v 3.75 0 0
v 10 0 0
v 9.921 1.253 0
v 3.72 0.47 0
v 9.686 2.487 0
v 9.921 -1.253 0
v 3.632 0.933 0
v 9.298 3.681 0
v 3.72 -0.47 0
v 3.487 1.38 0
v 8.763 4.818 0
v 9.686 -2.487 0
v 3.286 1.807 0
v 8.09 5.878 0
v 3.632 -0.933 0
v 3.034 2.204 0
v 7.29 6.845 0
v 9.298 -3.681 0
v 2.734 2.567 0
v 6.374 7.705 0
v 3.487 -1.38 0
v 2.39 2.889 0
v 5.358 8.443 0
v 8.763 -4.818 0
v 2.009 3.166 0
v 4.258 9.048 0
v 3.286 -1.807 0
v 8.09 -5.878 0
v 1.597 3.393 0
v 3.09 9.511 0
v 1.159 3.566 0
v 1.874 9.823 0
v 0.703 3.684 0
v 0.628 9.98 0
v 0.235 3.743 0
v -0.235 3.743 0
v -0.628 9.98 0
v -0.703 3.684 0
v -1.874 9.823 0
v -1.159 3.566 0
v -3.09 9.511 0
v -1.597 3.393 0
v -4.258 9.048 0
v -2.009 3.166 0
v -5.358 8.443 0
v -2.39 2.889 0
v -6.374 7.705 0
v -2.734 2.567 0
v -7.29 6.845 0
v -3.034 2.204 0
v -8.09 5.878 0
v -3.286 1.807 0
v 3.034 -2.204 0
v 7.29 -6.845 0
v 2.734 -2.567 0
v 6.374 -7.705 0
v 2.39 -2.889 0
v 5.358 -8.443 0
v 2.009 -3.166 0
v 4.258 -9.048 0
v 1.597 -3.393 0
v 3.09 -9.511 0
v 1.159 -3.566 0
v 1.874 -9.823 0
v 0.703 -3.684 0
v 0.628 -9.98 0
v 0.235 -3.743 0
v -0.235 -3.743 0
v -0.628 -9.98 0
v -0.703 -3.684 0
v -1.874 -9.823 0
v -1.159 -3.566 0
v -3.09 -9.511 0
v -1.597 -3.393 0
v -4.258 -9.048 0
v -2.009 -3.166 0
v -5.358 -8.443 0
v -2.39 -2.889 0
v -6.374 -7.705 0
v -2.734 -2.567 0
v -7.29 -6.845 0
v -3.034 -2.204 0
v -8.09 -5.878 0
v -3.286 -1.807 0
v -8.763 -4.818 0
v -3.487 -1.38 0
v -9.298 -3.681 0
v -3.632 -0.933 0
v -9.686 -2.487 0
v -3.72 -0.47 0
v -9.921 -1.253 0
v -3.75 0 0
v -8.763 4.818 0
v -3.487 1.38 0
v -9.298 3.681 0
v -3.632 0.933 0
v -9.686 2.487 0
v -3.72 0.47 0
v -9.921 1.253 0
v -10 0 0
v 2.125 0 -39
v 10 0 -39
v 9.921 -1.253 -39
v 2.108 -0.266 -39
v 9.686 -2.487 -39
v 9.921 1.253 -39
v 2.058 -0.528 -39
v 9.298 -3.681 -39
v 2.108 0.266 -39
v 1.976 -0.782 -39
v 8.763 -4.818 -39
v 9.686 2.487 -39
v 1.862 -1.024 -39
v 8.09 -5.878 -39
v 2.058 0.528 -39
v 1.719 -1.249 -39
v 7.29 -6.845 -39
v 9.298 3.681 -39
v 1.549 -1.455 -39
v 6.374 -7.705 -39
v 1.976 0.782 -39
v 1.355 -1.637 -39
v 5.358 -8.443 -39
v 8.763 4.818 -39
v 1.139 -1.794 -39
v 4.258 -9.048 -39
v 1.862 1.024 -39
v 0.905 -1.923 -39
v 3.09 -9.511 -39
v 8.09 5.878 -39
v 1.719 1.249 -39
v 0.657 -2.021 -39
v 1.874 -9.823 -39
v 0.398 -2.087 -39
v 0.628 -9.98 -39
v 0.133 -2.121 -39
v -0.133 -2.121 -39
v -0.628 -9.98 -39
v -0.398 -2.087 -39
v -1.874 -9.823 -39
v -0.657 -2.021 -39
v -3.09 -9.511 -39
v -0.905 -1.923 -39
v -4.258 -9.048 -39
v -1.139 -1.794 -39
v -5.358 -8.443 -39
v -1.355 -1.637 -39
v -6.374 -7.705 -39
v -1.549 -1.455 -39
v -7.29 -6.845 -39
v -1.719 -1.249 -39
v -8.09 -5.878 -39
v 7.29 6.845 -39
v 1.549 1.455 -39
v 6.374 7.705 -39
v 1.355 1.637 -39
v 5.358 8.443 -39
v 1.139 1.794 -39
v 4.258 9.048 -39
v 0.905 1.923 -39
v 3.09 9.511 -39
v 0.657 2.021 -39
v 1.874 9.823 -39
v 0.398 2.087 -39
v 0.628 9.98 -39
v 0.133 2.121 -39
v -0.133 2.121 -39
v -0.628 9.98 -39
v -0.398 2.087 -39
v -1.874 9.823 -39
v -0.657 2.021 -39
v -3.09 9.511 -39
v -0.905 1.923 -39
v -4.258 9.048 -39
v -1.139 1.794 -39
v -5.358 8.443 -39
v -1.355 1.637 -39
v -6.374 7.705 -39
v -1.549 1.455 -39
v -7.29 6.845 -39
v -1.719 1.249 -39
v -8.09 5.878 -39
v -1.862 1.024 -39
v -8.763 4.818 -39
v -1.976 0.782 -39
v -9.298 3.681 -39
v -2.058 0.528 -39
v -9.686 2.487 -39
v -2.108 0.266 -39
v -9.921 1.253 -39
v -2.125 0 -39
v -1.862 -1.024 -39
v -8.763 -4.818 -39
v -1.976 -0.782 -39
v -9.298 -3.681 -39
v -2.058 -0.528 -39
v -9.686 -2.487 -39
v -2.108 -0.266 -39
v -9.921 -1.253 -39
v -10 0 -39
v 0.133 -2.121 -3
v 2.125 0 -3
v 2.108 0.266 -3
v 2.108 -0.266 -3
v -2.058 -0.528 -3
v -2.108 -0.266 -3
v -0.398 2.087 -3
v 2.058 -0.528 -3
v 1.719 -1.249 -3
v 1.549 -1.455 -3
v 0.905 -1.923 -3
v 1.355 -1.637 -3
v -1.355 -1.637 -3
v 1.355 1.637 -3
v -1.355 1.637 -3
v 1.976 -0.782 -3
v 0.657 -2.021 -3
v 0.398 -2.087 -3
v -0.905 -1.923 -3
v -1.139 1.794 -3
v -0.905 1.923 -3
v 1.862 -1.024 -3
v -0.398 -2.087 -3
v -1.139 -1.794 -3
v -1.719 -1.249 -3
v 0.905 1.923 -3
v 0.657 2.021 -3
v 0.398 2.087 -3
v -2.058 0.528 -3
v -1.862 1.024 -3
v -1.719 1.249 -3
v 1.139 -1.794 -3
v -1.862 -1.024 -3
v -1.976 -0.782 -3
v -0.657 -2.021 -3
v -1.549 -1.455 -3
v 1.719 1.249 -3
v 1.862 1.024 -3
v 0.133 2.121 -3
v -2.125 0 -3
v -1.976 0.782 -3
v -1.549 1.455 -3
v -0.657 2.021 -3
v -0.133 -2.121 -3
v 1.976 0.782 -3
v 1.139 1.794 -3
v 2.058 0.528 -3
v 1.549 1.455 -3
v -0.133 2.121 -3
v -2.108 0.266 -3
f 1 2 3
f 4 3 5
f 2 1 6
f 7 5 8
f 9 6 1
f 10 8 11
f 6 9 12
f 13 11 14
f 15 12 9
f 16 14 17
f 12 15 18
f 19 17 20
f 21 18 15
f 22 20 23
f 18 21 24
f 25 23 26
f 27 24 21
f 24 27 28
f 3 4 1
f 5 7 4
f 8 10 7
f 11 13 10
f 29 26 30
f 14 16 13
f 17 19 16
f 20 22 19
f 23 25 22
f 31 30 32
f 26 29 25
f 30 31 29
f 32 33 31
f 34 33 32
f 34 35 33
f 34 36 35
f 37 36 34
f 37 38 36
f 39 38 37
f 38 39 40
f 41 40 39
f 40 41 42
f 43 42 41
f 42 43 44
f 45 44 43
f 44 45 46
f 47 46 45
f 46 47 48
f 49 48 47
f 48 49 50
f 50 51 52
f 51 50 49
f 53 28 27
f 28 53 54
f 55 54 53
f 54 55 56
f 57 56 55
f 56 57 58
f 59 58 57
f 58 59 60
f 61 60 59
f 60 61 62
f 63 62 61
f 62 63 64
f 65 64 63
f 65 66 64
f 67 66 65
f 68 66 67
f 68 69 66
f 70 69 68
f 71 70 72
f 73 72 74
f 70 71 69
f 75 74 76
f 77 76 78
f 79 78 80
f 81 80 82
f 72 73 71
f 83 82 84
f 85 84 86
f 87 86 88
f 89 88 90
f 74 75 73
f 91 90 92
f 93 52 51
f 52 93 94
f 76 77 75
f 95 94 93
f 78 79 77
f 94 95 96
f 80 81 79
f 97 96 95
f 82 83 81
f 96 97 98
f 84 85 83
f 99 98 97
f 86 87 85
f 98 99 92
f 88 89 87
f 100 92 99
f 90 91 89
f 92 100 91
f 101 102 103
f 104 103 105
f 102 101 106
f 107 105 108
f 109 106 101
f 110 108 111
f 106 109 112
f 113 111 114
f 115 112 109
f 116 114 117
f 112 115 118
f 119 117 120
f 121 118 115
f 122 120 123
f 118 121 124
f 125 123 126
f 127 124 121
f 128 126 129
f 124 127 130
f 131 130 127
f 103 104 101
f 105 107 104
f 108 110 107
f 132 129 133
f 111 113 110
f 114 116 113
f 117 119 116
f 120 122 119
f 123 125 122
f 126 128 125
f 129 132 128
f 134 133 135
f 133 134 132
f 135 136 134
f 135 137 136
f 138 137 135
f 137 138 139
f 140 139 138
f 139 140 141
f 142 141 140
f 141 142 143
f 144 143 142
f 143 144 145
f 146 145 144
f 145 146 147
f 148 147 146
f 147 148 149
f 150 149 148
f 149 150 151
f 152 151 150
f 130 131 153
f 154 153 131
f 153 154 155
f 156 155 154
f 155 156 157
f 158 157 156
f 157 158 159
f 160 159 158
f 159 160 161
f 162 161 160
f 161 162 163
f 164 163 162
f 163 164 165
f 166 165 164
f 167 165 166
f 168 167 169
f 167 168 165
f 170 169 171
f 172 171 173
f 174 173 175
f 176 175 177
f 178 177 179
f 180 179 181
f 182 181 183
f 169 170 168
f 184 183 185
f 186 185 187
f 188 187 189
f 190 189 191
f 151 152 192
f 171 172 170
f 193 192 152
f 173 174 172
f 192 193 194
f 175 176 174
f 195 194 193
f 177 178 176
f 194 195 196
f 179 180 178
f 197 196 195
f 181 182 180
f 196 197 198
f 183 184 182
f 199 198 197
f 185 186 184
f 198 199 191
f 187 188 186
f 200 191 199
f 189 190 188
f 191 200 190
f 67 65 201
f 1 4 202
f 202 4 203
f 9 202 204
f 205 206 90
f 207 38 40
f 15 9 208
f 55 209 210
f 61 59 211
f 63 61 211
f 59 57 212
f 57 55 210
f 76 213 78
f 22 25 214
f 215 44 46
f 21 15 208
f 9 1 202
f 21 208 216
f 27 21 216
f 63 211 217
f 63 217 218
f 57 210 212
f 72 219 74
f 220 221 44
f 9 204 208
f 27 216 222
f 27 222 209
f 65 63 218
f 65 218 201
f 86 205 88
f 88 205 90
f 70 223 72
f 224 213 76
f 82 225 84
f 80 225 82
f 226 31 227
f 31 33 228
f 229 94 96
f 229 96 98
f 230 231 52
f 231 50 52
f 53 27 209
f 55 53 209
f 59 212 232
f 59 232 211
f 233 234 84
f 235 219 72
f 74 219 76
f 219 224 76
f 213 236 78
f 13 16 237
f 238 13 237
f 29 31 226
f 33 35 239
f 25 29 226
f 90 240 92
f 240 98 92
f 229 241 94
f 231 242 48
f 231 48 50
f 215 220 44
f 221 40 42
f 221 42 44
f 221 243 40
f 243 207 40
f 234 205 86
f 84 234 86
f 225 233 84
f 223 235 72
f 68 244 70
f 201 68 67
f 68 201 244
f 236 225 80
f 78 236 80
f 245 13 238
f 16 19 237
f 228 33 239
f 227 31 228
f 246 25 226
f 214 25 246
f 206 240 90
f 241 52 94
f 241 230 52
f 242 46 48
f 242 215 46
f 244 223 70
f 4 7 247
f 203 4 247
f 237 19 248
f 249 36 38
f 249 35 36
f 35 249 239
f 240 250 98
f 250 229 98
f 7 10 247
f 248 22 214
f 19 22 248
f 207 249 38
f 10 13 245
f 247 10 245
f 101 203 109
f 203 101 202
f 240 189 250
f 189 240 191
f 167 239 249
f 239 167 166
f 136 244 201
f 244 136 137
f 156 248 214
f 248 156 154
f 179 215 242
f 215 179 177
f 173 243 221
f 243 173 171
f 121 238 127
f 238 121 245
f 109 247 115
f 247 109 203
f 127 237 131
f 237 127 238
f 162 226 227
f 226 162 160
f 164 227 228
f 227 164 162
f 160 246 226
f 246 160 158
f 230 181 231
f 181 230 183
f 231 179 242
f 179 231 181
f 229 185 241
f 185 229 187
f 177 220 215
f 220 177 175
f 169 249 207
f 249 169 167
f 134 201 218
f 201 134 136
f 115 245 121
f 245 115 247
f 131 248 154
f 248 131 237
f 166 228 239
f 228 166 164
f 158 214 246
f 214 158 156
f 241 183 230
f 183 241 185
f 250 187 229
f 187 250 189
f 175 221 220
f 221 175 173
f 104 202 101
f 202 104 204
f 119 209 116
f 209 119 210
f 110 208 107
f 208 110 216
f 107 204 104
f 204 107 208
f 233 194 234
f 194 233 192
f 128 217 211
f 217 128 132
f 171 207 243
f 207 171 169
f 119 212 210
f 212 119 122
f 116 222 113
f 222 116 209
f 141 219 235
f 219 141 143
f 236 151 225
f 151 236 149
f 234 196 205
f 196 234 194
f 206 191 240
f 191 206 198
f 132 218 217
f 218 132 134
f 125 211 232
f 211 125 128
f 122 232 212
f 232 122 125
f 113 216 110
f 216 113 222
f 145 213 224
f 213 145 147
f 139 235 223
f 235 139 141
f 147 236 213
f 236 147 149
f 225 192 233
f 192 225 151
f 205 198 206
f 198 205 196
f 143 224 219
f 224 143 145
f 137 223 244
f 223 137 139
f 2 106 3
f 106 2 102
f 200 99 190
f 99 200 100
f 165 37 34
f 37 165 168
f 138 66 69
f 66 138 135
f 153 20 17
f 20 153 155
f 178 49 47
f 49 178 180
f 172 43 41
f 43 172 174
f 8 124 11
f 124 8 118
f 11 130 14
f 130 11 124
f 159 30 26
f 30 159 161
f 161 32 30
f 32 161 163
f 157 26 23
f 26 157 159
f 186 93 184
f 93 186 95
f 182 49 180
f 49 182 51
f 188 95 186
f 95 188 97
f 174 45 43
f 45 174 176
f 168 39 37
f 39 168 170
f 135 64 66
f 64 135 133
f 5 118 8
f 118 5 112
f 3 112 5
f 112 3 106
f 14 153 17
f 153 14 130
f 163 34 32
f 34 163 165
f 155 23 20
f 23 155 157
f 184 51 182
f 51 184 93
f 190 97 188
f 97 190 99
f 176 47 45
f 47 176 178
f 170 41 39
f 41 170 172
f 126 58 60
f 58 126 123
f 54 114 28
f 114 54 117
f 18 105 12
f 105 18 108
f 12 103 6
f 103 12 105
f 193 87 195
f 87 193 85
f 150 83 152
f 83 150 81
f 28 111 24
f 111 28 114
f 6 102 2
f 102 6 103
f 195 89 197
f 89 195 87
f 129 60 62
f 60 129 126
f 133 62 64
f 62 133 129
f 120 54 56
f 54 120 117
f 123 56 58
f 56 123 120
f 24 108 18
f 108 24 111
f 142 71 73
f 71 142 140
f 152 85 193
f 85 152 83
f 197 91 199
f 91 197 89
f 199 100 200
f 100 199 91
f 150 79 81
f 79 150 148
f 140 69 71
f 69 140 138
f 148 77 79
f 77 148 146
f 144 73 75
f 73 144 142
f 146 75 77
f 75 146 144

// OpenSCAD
$fn = 50;


difference() {
	union() {
		translate(v = [0, 0, -39.0000000000]) {
			cylinder(h = 39, r = 10.0000000000);
		}
		cylinder(h = 0, r = 13.0000000000);
	}
	union() {
		translate(v = [0, 0, 0]) {
			rotate(a = [0, 0, 0]) {
				difference() {
					union() {
						#translate(v = [0, 0, -39.0000000000]) {
							cylinder(h = 39, r = 2.0000000000);
						}
						#translate(v = [0, 0, -3]) {
							cylinder(h = 3, r = 10.0000000000, r1 = 2.1250000000, r2 = 3.7500000000);
						}
						#translate(v = [0, 0, -39.0000000000]) {
							cylinder(h = 39, r = 2.1250000000);
						}
						#translate(v = [0, 0, -39.0000000000]) {
							cylinder(h = 39, r = 2.0000000000);
						}
					}
					union();
				}
			}
		}
	}
}
